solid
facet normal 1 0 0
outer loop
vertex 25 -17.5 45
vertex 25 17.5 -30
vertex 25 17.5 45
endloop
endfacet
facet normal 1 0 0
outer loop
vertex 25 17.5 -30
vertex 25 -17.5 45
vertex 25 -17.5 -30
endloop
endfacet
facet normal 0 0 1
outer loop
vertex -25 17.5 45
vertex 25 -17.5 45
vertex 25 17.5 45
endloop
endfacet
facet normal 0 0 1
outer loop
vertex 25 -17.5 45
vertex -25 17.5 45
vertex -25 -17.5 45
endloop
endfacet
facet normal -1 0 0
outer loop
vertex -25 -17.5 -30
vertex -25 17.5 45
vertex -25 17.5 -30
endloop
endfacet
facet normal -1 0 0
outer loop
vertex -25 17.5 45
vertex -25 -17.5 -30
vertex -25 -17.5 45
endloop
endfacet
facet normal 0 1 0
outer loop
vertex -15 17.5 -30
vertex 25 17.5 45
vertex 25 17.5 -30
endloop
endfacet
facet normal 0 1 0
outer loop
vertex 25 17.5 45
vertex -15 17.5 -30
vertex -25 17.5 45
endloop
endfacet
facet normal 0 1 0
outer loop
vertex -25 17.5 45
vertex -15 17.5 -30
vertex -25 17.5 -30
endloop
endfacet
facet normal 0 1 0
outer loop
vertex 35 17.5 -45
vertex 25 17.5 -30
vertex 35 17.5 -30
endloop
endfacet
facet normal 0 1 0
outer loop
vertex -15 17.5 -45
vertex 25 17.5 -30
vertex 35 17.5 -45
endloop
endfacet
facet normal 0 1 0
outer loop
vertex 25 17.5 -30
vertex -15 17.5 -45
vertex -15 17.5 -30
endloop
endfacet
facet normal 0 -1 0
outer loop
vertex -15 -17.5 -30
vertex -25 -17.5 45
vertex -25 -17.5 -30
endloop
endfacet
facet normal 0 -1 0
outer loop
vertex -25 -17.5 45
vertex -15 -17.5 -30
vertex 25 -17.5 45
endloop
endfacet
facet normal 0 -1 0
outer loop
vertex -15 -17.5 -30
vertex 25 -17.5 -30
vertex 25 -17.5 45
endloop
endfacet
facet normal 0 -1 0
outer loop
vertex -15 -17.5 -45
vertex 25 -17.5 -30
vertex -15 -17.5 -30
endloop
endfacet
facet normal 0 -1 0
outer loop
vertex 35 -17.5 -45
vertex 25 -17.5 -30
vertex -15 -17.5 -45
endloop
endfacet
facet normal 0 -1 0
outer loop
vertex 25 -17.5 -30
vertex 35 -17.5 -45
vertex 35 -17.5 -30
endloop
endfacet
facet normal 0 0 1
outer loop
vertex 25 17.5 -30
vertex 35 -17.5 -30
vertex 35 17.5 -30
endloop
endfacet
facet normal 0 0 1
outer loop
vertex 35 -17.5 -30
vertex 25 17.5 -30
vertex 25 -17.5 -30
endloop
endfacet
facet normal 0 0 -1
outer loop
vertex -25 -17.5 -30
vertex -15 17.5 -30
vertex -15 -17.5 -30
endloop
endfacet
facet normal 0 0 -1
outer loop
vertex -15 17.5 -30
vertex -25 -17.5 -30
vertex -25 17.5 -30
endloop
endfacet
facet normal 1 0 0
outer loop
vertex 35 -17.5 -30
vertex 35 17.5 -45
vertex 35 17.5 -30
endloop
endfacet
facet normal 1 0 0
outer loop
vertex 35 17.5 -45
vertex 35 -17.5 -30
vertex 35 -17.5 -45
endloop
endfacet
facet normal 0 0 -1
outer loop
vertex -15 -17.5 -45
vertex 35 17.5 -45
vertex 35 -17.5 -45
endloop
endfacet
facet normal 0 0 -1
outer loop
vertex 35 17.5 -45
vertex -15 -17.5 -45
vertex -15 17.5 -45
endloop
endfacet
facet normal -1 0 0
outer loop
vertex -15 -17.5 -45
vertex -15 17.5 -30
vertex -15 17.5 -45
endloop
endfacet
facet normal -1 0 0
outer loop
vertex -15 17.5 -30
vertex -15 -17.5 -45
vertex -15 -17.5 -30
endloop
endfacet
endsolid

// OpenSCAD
// Define the dimensions of the rectangular block
block_length = 50;  // Length of the block
block_width = 35;   // Width of the block (increased to match original model)
block_height = 15;  // Height of the block (increased to match original model)

// Function to create a rectangular block
module rectangular_block() {
    cube([block_length, block_width, block_height], center = true);
}

// Adjusted stacking and positioning based on differences_list
translate([0, 0, block_height * 2.5]) rectangular_block(); // Layer 1
translate([0, 0, block_height * 1.5]) rectangular_block(); // Layer 2
translate([0, 0, block_height * 0.5]) rectangular_block(); // Layer 3
translate([0, 0, -block_height * 0.5]) rectangular_block(); // Layer 4
translate([0, 0, -block_height * 1.5]) rectangular_block(); // Layer 5
translate([10, 0, -block_height * 2.5]) rectangular_block(); // Layer 6 (repositioned to match original placement)

// Adjust rotation for block alignment
rotate([0, 0, 0]) rectangular_block(); // Ensures blocks are aligned straight
